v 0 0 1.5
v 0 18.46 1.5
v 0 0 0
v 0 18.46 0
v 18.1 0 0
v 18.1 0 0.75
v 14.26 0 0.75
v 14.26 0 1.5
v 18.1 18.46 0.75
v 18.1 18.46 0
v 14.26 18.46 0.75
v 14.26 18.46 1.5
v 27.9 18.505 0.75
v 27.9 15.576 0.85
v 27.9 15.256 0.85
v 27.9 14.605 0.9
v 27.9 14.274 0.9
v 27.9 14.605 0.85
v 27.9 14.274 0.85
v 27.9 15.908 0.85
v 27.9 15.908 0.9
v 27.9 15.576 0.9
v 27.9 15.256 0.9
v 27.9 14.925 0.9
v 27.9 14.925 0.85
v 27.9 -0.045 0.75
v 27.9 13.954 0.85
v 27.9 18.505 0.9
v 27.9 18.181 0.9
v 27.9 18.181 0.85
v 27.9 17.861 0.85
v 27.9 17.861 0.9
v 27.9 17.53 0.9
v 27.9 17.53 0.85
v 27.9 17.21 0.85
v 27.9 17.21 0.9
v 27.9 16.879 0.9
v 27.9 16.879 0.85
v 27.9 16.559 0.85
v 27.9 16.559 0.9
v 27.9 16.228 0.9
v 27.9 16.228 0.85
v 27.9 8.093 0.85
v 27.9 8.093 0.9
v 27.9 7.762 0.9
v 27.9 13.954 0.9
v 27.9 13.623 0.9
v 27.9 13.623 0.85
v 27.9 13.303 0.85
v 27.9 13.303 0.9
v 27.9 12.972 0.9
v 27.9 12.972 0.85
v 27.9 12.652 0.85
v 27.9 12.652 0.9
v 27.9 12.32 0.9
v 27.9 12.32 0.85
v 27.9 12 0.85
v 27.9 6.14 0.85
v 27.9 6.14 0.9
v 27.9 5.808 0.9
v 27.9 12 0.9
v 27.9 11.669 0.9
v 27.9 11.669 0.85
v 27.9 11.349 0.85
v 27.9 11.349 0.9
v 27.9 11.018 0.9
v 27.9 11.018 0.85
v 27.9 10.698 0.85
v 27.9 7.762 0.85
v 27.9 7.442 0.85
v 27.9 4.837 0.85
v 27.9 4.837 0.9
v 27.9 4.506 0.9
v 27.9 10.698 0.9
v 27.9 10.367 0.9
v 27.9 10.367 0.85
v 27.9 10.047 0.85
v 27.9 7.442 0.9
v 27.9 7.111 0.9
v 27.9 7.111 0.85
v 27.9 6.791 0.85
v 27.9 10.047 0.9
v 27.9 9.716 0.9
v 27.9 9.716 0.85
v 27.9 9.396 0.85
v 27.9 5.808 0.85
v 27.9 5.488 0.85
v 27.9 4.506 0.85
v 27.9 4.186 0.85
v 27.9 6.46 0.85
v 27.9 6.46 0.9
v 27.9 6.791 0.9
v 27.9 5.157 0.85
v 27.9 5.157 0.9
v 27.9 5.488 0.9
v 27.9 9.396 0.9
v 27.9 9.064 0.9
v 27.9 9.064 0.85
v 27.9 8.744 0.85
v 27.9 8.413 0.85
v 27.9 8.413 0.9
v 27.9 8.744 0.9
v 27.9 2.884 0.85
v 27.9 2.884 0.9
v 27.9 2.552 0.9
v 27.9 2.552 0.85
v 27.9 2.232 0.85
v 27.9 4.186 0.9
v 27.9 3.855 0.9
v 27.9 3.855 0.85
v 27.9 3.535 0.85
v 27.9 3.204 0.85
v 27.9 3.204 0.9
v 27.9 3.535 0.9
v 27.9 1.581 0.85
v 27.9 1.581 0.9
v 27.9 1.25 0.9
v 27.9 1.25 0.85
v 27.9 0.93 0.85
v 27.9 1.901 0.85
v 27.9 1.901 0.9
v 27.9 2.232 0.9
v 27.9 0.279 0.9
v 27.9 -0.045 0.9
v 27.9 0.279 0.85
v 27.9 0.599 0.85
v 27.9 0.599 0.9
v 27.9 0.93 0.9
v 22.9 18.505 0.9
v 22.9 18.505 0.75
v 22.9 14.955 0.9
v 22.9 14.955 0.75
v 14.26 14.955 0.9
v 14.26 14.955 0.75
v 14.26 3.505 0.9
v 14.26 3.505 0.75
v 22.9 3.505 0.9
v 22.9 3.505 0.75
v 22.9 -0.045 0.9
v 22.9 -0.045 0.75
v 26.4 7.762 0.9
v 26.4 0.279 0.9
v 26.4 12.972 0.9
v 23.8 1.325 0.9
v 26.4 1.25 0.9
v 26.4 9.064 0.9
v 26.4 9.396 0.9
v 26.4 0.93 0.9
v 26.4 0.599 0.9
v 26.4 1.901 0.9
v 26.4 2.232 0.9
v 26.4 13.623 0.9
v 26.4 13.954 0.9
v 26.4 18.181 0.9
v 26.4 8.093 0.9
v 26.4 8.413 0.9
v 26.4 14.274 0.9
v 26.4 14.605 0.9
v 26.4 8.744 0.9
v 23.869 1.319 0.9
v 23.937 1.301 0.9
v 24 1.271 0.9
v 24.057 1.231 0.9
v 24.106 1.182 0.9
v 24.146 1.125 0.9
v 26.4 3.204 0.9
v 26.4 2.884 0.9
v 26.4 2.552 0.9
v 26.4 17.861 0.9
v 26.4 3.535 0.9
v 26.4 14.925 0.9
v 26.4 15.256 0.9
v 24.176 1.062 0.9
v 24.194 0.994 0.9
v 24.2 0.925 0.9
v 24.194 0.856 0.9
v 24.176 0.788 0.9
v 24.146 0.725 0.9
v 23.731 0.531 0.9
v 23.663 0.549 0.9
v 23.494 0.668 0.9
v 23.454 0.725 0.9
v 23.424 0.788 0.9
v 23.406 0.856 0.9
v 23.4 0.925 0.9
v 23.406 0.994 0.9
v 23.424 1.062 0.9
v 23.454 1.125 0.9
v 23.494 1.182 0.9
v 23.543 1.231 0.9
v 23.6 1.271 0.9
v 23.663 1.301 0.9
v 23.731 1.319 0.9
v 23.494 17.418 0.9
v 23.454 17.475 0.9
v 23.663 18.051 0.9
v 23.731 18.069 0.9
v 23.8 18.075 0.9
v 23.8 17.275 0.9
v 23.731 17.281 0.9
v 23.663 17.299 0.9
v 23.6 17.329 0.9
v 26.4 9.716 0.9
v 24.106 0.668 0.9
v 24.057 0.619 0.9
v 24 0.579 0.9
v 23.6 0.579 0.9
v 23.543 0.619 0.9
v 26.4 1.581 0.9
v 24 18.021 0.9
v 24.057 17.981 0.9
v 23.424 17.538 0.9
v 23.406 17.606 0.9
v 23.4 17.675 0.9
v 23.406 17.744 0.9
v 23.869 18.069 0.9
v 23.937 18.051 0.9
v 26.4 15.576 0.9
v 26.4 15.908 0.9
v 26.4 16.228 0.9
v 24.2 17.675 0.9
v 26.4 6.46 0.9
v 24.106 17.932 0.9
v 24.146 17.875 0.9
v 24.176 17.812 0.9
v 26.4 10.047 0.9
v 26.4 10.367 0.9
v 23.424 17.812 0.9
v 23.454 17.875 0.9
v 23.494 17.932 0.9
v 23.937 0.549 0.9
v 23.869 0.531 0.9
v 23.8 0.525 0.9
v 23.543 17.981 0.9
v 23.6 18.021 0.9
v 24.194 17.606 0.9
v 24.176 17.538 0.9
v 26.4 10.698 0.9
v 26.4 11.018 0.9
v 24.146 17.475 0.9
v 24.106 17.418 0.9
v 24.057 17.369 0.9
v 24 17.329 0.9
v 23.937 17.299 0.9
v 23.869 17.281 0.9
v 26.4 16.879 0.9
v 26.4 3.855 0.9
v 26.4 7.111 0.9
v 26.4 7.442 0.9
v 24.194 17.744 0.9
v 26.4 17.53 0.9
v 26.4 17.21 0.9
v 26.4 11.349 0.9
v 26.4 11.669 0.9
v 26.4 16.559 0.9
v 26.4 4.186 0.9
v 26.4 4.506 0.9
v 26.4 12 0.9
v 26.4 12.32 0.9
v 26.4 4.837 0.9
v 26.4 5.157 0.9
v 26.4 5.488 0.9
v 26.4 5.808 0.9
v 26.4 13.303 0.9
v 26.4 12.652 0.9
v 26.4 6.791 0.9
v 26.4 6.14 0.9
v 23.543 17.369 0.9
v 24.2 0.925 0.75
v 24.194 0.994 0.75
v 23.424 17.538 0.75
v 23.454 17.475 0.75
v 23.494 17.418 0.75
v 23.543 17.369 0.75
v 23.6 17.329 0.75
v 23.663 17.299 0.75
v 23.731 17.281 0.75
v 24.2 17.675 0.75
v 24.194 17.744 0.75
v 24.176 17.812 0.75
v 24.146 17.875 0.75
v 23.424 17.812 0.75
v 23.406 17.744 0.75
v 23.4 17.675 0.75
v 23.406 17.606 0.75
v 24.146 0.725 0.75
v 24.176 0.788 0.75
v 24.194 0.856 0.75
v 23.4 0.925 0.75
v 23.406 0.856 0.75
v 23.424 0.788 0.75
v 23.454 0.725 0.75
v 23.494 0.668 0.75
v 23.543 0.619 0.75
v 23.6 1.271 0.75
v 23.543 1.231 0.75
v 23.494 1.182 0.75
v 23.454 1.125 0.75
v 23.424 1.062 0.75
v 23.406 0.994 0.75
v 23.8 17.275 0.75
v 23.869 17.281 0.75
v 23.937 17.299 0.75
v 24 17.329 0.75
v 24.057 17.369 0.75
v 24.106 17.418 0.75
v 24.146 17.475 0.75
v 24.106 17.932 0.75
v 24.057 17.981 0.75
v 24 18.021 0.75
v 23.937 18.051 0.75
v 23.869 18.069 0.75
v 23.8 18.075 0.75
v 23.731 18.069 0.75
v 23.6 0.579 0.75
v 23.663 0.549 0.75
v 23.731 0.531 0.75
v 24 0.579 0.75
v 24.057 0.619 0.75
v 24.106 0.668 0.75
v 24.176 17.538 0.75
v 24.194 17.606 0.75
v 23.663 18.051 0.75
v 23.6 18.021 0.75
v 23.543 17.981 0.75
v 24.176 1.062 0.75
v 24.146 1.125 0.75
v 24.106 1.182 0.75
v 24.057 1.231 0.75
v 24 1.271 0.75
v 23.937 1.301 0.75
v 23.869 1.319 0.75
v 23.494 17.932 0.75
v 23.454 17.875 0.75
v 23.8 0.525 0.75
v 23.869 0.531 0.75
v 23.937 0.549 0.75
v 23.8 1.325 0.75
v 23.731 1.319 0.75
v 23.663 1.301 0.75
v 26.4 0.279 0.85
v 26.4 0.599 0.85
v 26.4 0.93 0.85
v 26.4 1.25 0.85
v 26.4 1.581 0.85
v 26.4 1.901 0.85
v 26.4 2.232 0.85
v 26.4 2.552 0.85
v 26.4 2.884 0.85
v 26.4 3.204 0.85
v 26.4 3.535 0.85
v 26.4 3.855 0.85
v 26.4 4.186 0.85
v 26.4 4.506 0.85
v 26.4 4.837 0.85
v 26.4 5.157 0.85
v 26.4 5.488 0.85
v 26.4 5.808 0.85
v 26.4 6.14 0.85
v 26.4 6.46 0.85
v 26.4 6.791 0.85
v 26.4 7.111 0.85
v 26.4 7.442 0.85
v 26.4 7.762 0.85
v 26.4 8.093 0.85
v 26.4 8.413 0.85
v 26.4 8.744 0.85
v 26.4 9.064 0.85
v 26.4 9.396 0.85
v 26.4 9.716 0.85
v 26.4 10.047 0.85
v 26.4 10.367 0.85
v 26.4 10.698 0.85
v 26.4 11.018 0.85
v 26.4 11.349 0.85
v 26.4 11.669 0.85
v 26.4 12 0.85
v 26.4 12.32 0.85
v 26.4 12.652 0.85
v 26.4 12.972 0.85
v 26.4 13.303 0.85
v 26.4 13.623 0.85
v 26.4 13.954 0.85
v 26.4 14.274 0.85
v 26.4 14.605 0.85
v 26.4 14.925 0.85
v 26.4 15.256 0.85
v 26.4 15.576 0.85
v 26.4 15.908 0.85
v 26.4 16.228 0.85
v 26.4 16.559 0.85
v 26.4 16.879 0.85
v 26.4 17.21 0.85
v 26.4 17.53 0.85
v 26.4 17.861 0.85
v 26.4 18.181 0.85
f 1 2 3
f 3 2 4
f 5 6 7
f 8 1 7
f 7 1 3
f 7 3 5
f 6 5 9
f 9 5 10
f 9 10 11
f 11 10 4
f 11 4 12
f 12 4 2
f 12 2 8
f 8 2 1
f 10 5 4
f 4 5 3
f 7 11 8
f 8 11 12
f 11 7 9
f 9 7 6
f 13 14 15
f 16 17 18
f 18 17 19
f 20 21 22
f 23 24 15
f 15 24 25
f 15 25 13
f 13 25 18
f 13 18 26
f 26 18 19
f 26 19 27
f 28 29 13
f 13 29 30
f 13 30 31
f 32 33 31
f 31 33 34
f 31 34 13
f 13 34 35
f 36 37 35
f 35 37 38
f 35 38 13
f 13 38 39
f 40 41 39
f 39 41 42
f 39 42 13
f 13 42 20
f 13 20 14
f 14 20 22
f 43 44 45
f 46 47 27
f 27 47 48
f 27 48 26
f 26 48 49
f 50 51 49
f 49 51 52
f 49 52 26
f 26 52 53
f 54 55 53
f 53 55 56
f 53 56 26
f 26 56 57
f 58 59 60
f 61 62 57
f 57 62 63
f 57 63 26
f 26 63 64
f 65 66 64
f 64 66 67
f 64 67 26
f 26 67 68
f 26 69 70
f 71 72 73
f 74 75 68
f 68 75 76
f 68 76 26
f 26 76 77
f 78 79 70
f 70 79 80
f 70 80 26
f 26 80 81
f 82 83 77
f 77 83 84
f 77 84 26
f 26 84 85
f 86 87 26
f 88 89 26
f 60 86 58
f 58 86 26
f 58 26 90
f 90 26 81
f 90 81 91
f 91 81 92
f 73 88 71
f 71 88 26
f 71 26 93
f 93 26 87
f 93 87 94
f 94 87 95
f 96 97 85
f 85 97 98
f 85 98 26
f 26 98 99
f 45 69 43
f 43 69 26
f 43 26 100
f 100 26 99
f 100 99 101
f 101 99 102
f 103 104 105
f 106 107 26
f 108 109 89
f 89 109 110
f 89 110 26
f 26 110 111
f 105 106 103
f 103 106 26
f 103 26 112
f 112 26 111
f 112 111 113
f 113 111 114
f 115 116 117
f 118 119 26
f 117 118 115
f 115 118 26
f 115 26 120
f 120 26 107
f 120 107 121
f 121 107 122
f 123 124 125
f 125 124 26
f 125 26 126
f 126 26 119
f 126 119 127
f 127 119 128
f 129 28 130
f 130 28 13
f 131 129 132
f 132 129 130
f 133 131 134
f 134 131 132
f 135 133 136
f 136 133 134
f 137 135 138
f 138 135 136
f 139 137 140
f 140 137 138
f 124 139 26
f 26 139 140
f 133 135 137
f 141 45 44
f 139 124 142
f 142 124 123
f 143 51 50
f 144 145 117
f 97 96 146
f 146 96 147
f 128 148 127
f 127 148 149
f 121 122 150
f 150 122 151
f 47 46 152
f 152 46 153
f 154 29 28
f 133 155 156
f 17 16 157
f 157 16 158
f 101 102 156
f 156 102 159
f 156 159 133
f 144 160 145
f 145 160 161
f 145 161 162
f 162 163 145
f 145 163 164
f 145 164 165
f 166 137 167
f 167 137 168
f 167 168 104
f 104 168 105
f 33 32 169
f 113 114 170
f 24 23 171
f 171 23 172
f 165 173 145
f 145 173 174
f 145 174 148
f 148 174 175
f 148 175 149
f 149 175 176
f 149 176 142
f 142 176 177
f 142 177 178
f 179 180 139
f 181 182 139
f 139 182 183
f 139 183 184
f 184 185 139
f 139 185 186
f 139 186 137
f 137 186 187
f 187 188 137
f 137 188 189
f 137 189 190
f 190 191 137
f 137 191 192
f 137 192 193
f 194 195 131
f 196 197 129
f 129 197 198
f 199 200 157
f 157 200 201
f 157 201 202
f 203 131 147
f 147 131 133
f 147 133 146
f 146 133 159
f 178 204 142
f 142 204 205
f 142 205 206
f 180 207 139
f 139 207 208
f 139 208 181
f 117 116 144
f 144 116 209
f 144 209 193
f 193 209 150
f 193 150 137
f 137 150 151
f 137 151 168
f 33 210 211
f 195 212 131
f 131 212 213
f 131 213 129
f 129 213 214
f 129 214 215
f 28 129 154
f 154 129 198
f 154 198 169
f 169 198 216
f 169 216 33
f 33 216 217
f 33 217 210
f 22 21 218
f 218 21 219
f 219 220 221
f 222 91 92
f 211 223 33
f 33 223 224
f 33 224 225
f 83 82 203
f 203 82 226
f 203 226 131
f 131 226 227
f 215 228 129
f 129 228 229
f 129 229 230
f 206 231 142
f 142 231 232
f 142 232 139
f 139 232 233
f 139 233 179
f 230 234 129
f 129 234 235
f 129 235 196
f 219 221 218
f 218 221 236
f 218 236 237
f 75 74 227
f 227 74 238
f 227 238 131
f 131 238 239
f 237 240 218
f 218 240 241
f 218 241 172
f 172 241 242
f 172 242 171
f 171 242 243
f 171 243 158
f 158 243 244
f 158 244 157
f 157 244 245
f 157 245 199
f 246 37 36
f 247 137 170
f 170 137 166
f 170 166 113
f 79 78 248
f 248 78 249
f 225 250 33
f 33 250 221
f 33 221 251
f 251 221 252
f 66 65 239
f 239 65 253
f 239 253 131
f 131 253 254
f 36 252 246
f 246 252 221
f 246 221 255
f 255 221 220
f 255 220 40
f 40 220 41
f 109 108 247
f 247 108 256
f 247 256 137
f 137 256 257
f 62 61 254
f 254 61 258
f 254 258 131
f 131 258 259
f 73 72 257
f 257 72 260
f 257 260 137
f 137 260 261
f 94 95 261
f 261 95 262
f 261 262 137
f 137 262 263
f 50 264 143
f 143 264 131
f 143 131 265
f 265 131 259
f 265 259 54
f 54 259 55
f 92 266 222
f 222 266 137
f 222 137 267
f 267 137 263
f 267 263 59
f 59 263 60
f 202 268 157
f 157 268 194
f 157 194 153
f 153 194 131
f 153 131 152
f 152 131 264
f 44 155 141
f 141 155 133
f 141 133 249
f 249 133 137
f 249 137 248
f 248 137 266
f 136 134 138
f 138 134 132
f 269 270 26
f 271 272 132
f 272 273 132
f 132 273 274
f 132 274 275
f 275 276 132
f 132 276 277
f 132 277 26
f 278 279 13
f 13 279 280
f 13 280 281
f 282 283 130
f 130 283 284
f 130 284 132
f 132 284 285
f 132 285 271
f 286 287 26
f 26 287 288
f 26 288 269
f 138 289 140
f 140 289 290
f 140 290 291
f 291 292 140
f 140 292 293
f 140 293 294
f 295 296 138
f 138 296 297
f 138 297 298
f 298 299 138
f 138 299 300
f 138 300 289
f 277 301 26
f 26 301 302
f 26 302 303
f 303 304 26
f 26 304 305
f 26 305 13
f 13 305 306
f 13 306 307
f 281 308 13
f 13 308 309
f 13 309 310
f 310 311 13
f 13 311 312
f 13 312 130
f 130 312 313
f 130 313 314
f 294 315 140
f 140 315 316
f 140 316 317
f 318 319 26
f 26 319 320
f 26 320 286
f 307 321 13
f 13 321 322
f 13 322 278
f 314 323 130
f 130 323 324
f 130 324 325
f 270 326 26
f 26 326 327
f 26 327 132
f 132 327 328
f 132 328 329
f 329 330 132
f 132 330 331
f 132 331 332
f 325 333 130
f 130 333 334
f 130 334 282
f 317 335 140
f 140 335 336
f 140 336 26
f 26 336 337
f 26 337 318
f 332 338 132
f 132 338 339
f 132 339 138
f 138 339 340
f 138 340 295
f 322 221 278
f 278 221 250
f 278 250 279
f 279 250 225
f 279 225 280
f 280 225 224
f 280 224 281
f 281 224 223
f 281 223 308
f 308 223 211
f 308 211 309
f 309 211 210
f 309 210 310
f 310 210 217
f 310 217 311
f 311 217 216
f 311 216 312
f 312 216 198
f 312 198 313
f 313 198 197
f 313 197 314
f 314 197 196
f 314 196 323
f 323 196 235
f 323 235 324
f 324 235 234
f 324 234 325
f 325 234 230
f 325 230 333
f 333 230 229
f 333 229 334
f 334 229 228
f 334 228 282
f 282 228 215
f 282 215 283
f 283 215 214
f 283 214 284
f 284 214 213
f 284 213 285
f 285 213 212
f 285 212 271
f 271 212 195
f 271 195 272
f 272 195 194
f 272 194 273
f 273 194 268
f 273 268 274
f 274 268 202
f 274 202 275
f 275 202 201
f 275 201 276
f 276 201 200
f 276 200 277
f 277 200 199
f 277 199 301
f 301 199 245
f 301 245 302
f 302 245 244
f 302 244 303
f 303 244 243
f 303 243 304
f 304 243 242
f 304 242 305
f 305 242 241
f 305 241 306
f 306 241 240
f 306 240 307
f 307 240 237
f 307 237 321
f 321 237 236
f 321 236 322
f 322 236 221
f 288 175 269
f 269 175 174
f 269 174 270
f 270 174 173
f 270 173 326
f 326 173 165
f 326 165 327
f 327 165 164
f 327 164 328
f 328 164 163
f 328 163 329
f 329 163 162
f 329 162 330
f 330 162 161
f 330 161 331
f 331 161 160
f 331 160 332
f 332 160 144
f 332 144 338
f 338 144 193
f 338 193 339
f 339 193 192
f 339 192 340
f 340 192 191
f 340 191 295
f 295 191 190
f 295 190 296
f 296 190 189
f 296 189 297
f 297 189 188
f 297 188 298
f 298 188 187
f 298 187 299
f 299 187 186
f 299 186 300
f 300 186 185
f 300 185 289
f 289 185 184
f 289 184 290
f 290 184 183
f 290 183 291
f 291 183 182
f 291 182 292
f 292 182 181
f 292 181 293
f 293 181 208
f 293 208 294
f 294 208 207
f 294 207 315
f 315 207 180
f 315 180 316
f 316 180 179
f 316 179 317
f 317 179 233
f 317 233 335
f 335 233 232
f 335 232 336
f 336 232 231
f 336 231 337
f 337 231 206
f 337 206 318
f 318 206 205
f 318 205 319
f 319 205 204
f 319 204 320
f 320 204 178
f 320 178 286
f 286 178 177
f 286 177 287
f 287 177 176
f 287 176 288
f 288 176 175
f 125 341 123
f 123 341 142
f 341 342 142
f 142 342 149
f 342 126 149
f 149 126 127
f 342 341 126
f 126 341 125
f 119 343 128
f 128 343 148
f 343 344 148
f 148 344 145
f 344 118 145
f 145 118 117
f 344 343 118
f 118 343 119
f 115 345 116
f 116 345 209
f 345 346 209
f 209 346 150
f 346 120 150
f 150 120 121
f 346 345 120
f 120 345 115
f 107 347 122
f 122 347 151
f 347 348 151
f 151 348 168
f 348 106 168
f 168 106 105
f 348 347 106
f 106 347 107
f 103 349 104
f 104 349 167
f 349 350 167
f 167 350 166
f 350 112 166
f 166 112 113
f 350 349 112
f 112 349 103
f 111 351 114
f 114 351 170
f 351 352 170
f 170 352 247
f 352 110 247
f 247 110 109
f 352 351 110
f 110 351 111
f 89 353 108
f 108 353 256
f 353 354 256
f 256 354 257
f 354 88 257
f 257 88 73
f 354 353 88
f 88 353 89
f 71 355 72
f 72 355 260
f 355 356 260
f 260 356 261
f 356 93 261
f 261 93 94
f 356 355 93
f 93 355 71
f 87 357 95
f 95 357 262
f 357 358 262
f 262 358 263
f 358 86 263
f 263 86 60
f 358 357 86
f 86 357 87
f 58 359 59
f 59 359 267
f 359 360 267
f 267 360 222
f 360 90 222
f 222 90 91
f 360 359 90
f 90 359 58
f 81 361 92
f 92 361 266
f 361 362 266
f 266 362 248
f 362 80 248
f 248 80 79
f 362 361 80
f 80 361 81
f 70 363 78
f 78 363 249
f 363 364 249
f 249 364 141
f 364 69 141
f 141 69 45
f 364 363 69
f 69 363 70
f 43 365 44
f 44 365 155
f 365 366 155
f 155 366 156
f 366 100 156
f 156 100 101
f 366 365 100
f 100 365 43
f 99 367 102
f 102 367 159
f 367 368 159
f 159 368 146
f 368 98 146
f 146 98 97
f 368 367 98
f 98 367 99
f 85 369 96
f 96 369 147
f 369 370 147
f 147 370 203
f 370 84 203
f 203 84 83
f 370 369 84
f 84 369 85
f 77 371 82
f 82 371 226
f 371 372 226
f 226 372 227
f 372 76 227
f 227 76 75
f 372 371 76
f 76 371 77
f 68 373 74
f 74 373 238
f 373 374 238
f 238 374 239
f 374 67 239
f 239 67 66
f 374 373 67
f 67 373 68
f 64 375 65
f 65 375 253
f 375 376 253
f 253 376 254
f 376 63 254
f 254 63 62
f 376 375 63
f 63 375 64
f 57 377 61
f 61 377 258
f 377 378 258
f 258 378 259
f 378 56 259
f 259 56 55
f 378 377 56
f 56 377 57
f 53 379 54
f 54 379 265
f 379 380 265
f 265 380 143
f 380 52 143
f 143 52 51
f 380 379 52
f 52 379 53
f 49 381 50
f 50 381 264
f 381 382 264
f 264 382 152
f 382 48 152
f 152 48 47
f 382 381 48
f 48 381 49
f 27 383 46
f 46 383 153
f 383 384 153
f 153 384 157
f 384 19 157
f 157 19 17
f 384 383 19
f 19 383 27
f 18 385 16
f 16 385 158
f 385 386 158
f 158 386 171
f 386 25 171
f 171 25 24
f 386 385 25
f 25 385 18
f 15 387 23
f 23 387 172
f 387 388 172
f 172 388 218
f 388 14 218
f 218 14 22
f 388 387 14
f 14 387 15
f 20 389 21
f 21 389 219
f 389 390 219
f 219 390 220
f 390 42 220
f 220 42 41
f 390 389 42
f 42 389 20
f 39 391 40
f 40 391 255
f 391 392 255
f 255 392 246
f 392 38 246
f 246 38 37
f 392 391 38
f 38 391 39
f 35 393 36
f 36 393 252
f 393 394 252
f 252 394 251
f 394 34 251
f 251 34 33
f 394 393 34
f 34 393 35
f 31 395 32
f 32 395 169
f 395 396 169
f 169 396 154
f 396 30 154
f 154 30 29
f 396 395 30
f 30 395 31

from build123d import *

# Parameters (mm, degrees)
SKETCH1_W           = 18.1
SKETCH1_H           = 18.46
BOSS_EXTRUDE1_DEPTH = 1.5
SKETCH2_W           = 3.84
SKETCH2_H           = 18.46
CUT_EXTRUDE1_DEPTH  = 0.75
BOSS_EXTRUDE2_DEPTH = 0.15
SKETCH4_R           = 0.4
CUT_EXTRUDE2_DEPTH  = 0.15
SKETCH5_W           = 1.5
SKETCH5_H           = 0.32
CUT_EXTRUDE6_DEPTH  = 0.05


with BuildPart() as part:
    # Sketch1 → Boss-Extrude1 (new body)
    with BuildSketch(Plane.XY):
        with Locations((9.05, 9.23)):
            Rectangle(SKETCH1_W, SKETCH1_H)
    extrude(amount=BOSS_EXTRUDE1_DEPTH)

    # Sketch2 → Cut-Extrude1 (cut)
    with BuildSketch(Plane.XY.offset(1.5)):
        with Locations((16.18, 9.23)):
            Rectangle(SKETCH2_W, SKETCH2_H)
    extrude(amount=-CUT_EXTRUDE1_DEPTH, mode=Mode.SUBTRACT)


with BuildPart() as body_2:
    # Sketch3 → Boss-Extrude2 (new body)
    with BuildSketch(Plane.XY.offset(0.75)):
        Polygon((22.9, 18.505), (27.9, 18.505), (27.9, -0.045), (22.9, -0.045), (22.9, 3.505), (14.26, 3.505), (14.26, 14.955), (22.9, 14.955), align=None)
    extrude(amount=BOSS_EXTRUDE2_DEPTH)

    # Sketch4 → Cut-Extrude2 (cut)
    with BuildSketch(Plane.XY.offset(0.9)):
        with Locations((23.8, 17.675)):
            Circle(SKETCH4_R)
        with Locations((23.8, 0.925)):
            Circle(SKETCH4_R)
    extrude(amount=-CUT_EXTRUDE2_DEPTH, mode=Mode.SUBTRACT)

    # Sketch5 → Cut-Extrude6 (cut)
    with BuildSketch(Plane.XY.offset(0.9)):
        with Locations((27.15, 0.438659377)):
            Rectangle(SKETCH5_W, SKETCH5_H)
        with Locations((27.15, 1.089869794)):
            Rectangle(SKETCH5_W, SKETCH5_H)
        with Locations((27.15, 1.74108021)):
            Rectangle(SKETCH5_W, SKETCH5_H)
        with Locations((27.15, 2.392290627)):
            Rectangle(SKETCH5_W, SKETCH5_H)
        with Locations((27.15, 3.043501043)):
            Rectangle(SKETCH5_W, SKETCH5_H)
        with Locations((27.15, 3.69471146)):
            Rectangle(SKETCH5_W, SKETCH5_H)
        with Locations((27.15, 4.345921876)):
            Rectangle(SKETCH5_W, SKETCH5_H)
        with Locations((27.15, 4.997132293)):
            Rectangle(SKETCH5_W, SKETCH5_H)
        with Locations((27.15, 5.648342709)):
            Rectangle(SKETCH5_W, SKETCH5_H)
        with Locations((27.15, 6.299553126)):
            Rectangle(SKETCH5_W, SKETCH5_H)
        with Locations((27.15, 6.950763542)):
            Rectangle(SKETCH5_W, SKETCH5_H)
        with Locations((27.15, 7.601973959)):
            Rectangle(SKETCH5_W, SKETCH5_H)
        with Locations((27.15, 8.253184375)):
            Rectangle(SKETCH5_W, SKETCH5_H)
        with Locations((27.15, 8.904394792)):
            Rectangle(SKETCH5_W, SKETCH5_H)
        with Locations((27.15, 9.555605208)):
            Rectangle(SKETCH5_W, SKETCH5_H)
        with Locations((27.15, 10.206815625)):
            Rectangle(SKETCH5_W, SKETCH5_H)
        with Locations((27.15, 10.858026041)):
            Rectangle(SKETCH5_W, SKETCH5_H)
        with Locations((27.15, 11.509236458)):
            Rectangle(SKETCH5_W, SKETCH5_H)
        with Locations((27.15, 12.160446874)):
            Rectangle(SKETCH5_W, SKETCH5_H)
        with Locations((27.15, 12.811657291)):
            Rectangle(SKETCH5_W, SKETCH5_H)
        with Locations((27.15, 13.462867707)):
            Rectangle(SKETCH5_W, SKETCH5_H)
        with Locations((27.15, 14.114078124)):
            Rectangle(SKETCH5_W, SKETCH5_H)
        with Locations((27.15, 14.76528854)):
            Rectangle(SKETCH5_W, SKETCH5_H)
        with Locations((27.15, 15.416498957)):
            Rectangle(SKETCH5_W, SKETCH5_H)
        with Locations((27.15, 16.067709373)):
            Rectangle(SKETCH5_W, SKETCH5_H)
        with Locations((27.15, 16.71891979)):
            Rectangle(SKETCH5_W, SKETCH5_H)
        with Locations((27.15, 17.370130206)):
            Rectangle(SKETCH5_W, SKETCH5_H)
        with Locations((27.15, 18.021340623)):
            Rectangle(SKETCH5_W, SKETCH5_H)
    extrude(amount=-CUT_EXTRUDE6_DEPTH, mode=Mode.SUBTRACT)


solid = Compound([part.part, body_2.part])
